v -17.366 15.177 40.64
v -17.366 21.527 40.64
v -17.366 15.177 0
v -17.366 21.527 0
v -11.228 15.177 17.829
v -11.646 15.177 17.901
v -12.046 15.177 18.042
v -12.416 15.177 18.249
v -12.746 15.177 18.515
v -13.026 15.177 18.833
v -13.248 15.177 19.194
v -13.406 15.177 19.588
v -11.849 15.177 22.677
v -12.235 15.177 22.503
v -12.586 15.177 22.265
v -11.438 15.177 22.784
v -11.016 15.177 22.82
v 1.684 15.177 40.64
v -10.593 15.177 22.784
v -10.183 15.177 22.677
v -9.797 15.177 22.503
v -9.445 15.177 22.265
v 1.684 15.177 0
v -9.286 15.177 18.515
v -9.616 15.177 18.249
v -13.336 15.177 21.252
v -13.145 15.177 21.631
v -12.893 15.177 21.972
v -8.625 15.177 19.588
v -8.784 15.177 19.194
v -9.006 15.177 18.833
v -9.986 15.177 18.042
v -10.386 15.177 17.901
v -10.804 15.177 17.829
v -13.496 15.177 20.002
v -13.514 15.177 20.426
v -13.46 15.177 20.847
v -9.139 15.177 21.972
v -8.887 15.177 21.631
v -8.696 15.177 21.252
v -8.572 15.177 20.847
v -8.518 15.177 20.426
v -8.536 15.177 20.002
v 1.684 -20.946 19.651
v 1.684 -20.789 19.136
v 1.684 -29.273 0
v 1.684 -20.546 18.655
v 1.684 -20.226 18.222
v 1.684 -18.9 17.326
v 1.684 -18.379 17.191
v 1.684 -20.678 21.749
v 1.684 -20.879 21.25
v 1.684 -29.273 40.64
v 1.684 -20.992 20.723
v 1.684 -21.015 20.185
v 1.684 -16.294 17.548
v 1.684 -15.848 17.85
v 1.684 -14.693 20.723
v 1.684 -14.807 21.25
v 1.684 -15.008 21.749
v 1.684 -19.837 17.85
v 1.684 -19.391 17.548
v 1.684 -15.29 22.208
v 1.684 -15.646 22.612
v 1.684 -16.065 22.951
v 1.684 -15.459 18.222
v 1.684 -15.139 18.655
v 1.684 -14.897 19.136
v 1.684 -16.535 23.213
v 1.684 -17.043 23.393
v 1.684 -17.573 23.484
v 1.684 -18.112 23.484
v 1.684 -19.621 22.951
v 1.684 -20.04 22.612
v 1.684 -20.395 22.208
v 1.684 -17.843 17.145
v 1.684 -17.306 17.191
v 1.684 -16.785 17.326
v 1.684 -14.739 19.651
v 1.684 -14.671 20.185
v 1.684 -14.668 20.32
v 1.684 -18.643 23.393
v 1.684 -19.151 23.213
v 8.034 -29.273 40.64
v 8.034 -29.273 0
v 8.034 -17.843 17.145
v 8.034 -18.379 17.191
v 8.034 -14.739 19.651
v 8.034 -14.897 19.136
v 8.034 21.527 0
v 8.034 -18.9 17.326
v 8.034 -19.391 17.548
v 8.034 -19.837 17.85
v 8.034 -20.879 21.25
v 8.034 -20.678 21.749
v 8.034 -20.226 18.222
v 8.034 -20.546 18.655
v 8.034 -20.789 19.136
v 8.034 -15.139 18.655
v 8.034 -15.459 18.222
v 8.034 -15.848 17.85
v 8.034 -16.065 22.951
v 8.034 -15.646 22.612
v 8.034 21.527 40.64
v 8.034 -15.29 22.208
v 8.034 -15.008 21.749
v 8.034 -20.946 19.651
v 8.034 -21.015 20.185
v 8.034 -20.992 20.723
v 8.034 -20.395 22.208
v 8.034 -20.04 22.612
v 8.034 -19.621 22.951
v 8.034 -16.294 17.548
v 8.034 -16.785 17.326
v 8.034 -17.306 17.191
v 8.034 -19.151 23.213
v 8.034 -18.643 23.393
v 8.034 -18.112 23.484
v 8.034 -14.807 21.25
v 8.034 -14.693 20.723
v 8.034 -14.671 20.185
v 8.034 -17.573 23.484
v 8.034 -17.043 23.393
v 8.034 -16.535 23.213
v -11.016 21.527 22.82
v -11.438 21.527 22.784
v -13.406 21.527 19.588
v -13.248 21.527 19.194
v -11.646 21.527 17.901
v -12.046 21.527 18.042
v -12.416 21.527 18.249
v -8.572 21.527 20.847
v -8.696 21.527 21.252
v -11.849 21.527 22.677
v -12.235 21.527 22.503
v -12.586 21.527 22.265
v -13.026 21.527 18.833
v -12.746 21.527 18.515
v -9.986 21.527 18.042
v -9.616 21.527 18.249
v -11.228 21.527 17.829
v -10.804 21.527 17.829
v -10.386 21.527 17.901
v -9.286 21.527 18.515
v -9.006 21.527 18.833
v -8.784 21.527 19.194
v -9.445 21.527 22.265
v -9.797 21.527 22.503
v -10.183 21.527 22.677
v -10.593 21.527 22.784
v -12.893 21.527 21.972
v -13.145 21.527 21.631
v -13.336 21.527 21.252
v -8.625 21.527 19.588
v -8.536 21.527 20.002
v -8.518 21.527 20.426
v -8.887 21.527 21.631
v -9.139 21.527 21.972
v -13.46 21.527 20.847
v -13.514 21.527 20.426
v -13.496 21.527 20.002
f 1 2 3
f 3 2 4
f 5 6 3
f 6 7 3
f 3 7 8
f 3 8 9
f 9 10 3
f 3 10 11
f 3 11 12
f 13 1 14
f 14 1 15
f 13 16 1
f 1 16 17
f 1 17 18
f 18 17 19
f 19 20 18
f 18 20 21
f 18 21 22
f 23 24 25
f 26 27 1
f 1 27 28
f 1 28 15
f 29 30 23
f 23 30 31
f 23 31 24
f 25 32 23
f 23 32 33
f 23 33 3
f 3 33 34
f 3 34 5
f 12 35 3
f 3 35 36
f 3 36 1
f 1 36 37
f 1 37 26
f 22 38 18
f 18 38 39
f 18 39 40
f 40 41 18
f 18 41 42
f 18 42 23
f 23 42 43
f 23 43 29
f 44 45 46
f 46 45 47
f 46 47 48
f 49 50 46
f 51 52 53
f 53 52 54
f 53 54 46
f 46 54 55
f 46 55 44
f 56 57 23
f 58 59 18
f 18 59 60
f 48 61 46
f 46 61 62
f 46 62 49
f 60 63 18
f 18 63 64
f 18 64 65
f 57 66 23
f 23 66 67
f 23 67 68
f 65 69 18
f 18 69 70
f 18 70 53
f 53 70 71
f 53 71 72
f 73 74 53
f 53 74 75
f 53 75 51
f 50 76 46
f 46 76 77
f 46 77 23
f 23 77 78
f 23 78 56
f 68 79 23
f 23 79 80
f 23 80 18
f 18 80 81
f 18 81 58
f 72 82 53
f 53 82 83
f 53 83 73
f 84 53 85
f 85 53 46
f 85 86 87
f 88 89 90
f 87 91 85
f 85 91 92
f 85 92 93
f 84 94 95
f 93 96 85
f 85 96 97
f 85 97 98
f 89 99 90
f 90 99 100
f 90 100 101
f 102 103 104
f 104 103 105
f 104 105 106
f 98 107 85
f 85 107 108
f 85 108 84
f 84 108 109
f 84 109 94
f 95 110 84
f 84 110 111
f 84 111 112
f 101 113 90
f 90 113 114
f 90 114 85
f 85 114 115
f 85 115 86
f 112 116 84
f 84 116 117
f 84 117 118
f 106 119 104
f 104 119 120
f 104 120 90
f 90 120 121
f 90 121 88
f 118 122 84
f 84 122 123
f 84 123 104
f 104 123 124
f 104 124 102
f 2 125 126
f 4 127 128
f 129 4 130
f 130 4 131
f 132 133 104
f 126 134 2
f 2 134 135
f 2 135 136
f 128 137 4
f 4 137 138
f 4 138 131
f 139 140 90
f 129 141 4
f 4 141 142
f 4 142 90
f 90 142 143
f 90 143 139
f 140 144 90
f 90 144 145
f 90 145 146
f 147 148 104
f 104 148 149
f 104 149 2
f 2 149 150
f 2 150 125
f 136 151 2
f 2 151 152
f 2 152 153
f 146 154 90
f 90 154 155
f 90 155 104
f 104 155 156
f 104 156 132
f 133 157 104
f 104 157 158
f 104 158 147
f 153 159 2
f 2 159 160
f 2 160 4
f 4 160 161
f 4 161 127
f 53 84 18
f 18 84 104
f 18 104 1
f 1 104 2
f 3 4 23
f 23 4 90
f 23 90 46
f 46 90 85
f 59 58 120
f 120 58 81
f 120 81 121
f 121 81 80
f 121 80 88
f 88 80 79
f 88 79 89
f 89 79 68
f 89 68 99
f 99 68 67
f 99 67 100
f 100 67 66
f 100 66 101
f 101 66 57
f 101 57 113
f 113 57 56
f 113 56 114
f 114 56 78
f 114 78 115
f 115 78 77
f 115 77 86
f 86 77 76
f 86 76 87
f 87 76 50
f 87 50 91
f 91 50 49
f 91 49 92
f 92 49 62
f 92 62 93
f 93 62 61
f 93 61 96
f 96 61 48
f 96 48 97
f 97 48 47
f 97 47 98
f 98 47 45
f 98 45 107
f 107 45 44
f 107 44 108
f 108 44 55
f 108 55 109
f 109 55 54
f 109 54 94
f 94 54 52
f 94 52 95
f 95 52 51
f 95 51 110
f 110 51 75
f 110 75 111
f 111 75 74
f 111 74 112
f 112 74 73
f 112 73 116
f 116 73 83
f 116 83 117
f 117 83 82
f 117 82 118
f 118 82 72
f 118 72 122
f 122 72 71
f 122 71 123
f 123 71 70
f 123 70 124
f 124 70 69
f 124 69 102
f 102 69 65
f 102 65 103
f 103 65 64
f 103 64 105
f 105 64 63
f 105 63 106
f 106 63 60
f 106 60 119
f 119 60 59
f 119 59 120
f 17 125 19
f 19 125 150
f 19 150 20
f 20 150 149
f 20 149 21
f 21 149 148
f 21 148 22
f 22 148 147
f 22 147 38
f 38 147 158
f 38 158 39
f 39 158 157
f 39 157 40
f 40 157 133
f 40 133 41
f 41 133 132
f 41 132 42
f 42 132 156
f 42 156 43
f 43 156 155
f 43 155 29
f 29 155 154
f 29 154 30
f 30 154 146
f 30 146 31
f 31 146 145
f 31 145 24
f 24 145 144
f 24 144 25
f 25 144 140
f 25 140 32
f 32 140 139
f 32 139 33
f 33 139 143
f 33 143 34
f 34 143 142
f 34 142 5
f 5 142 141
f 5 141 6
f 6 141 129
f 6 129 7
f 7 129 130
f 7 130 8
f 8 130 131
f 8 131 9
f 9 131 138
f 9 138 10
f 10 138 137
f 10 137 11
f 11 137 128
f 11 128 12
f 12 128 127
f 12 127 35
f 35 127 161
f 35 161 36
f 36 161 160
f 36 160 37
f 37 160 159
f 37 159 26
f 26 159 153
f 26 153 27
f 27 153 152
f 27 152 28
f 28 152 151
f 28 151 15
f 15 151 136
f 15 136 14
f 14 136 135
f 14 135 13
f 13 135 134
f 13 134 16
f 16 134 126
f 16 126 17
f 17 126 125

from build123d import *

# Parameters (mm, degrees)
BOSS_EXTRUDE1_DEPTH         = 40.64
F_1_4_0_25_DIAMETER_HOLE1_D = 6.35
F_8_0_199_DIAMETER_HOLE2_D  = 5.0546


with BuildPart() as part:
    # Sketch1 → Boss-Extrude1 (new body)
    with BuildSketch(Plane.XY):
        Polygon((-17.365909091, 21.527272727), (8.034090909, 21.527272727), (8.034090909, 12.565909091), (8.034090909, -29.272727273), (1.684090909, -29.272727273), (1.684090909, 15.177272727), (-17.365909091, 15.177272727), align=None)
    extrude(amount=BOSS_EXTRUDE1_DEPTH)

    # 1/4 (0.25) Diameter Hole1 (through all)
    with Locations(Plane(origin=(8.034090909, 0, 0), x_dir=(0, 0, -1), z_dir=(1, 0, 0))):
        with Locations((-20.32, -17.842727273)):
            Hole(F_1_4_0_25_DIAMETER_HOLE1_D / 2)

    # #8 (0.199) Diameter Hole2 (through all)
    with Locations(Plane(origin=(0, 21.527272727, 0), x_dir=(1, 0, 0), z_dir=(0, 1, 0))):
        with Locations((-11.015909091, -20.32)):
            Hole(F_8_0_199_DIAMETER_HOLE2_D / 2)


solid = part.part
